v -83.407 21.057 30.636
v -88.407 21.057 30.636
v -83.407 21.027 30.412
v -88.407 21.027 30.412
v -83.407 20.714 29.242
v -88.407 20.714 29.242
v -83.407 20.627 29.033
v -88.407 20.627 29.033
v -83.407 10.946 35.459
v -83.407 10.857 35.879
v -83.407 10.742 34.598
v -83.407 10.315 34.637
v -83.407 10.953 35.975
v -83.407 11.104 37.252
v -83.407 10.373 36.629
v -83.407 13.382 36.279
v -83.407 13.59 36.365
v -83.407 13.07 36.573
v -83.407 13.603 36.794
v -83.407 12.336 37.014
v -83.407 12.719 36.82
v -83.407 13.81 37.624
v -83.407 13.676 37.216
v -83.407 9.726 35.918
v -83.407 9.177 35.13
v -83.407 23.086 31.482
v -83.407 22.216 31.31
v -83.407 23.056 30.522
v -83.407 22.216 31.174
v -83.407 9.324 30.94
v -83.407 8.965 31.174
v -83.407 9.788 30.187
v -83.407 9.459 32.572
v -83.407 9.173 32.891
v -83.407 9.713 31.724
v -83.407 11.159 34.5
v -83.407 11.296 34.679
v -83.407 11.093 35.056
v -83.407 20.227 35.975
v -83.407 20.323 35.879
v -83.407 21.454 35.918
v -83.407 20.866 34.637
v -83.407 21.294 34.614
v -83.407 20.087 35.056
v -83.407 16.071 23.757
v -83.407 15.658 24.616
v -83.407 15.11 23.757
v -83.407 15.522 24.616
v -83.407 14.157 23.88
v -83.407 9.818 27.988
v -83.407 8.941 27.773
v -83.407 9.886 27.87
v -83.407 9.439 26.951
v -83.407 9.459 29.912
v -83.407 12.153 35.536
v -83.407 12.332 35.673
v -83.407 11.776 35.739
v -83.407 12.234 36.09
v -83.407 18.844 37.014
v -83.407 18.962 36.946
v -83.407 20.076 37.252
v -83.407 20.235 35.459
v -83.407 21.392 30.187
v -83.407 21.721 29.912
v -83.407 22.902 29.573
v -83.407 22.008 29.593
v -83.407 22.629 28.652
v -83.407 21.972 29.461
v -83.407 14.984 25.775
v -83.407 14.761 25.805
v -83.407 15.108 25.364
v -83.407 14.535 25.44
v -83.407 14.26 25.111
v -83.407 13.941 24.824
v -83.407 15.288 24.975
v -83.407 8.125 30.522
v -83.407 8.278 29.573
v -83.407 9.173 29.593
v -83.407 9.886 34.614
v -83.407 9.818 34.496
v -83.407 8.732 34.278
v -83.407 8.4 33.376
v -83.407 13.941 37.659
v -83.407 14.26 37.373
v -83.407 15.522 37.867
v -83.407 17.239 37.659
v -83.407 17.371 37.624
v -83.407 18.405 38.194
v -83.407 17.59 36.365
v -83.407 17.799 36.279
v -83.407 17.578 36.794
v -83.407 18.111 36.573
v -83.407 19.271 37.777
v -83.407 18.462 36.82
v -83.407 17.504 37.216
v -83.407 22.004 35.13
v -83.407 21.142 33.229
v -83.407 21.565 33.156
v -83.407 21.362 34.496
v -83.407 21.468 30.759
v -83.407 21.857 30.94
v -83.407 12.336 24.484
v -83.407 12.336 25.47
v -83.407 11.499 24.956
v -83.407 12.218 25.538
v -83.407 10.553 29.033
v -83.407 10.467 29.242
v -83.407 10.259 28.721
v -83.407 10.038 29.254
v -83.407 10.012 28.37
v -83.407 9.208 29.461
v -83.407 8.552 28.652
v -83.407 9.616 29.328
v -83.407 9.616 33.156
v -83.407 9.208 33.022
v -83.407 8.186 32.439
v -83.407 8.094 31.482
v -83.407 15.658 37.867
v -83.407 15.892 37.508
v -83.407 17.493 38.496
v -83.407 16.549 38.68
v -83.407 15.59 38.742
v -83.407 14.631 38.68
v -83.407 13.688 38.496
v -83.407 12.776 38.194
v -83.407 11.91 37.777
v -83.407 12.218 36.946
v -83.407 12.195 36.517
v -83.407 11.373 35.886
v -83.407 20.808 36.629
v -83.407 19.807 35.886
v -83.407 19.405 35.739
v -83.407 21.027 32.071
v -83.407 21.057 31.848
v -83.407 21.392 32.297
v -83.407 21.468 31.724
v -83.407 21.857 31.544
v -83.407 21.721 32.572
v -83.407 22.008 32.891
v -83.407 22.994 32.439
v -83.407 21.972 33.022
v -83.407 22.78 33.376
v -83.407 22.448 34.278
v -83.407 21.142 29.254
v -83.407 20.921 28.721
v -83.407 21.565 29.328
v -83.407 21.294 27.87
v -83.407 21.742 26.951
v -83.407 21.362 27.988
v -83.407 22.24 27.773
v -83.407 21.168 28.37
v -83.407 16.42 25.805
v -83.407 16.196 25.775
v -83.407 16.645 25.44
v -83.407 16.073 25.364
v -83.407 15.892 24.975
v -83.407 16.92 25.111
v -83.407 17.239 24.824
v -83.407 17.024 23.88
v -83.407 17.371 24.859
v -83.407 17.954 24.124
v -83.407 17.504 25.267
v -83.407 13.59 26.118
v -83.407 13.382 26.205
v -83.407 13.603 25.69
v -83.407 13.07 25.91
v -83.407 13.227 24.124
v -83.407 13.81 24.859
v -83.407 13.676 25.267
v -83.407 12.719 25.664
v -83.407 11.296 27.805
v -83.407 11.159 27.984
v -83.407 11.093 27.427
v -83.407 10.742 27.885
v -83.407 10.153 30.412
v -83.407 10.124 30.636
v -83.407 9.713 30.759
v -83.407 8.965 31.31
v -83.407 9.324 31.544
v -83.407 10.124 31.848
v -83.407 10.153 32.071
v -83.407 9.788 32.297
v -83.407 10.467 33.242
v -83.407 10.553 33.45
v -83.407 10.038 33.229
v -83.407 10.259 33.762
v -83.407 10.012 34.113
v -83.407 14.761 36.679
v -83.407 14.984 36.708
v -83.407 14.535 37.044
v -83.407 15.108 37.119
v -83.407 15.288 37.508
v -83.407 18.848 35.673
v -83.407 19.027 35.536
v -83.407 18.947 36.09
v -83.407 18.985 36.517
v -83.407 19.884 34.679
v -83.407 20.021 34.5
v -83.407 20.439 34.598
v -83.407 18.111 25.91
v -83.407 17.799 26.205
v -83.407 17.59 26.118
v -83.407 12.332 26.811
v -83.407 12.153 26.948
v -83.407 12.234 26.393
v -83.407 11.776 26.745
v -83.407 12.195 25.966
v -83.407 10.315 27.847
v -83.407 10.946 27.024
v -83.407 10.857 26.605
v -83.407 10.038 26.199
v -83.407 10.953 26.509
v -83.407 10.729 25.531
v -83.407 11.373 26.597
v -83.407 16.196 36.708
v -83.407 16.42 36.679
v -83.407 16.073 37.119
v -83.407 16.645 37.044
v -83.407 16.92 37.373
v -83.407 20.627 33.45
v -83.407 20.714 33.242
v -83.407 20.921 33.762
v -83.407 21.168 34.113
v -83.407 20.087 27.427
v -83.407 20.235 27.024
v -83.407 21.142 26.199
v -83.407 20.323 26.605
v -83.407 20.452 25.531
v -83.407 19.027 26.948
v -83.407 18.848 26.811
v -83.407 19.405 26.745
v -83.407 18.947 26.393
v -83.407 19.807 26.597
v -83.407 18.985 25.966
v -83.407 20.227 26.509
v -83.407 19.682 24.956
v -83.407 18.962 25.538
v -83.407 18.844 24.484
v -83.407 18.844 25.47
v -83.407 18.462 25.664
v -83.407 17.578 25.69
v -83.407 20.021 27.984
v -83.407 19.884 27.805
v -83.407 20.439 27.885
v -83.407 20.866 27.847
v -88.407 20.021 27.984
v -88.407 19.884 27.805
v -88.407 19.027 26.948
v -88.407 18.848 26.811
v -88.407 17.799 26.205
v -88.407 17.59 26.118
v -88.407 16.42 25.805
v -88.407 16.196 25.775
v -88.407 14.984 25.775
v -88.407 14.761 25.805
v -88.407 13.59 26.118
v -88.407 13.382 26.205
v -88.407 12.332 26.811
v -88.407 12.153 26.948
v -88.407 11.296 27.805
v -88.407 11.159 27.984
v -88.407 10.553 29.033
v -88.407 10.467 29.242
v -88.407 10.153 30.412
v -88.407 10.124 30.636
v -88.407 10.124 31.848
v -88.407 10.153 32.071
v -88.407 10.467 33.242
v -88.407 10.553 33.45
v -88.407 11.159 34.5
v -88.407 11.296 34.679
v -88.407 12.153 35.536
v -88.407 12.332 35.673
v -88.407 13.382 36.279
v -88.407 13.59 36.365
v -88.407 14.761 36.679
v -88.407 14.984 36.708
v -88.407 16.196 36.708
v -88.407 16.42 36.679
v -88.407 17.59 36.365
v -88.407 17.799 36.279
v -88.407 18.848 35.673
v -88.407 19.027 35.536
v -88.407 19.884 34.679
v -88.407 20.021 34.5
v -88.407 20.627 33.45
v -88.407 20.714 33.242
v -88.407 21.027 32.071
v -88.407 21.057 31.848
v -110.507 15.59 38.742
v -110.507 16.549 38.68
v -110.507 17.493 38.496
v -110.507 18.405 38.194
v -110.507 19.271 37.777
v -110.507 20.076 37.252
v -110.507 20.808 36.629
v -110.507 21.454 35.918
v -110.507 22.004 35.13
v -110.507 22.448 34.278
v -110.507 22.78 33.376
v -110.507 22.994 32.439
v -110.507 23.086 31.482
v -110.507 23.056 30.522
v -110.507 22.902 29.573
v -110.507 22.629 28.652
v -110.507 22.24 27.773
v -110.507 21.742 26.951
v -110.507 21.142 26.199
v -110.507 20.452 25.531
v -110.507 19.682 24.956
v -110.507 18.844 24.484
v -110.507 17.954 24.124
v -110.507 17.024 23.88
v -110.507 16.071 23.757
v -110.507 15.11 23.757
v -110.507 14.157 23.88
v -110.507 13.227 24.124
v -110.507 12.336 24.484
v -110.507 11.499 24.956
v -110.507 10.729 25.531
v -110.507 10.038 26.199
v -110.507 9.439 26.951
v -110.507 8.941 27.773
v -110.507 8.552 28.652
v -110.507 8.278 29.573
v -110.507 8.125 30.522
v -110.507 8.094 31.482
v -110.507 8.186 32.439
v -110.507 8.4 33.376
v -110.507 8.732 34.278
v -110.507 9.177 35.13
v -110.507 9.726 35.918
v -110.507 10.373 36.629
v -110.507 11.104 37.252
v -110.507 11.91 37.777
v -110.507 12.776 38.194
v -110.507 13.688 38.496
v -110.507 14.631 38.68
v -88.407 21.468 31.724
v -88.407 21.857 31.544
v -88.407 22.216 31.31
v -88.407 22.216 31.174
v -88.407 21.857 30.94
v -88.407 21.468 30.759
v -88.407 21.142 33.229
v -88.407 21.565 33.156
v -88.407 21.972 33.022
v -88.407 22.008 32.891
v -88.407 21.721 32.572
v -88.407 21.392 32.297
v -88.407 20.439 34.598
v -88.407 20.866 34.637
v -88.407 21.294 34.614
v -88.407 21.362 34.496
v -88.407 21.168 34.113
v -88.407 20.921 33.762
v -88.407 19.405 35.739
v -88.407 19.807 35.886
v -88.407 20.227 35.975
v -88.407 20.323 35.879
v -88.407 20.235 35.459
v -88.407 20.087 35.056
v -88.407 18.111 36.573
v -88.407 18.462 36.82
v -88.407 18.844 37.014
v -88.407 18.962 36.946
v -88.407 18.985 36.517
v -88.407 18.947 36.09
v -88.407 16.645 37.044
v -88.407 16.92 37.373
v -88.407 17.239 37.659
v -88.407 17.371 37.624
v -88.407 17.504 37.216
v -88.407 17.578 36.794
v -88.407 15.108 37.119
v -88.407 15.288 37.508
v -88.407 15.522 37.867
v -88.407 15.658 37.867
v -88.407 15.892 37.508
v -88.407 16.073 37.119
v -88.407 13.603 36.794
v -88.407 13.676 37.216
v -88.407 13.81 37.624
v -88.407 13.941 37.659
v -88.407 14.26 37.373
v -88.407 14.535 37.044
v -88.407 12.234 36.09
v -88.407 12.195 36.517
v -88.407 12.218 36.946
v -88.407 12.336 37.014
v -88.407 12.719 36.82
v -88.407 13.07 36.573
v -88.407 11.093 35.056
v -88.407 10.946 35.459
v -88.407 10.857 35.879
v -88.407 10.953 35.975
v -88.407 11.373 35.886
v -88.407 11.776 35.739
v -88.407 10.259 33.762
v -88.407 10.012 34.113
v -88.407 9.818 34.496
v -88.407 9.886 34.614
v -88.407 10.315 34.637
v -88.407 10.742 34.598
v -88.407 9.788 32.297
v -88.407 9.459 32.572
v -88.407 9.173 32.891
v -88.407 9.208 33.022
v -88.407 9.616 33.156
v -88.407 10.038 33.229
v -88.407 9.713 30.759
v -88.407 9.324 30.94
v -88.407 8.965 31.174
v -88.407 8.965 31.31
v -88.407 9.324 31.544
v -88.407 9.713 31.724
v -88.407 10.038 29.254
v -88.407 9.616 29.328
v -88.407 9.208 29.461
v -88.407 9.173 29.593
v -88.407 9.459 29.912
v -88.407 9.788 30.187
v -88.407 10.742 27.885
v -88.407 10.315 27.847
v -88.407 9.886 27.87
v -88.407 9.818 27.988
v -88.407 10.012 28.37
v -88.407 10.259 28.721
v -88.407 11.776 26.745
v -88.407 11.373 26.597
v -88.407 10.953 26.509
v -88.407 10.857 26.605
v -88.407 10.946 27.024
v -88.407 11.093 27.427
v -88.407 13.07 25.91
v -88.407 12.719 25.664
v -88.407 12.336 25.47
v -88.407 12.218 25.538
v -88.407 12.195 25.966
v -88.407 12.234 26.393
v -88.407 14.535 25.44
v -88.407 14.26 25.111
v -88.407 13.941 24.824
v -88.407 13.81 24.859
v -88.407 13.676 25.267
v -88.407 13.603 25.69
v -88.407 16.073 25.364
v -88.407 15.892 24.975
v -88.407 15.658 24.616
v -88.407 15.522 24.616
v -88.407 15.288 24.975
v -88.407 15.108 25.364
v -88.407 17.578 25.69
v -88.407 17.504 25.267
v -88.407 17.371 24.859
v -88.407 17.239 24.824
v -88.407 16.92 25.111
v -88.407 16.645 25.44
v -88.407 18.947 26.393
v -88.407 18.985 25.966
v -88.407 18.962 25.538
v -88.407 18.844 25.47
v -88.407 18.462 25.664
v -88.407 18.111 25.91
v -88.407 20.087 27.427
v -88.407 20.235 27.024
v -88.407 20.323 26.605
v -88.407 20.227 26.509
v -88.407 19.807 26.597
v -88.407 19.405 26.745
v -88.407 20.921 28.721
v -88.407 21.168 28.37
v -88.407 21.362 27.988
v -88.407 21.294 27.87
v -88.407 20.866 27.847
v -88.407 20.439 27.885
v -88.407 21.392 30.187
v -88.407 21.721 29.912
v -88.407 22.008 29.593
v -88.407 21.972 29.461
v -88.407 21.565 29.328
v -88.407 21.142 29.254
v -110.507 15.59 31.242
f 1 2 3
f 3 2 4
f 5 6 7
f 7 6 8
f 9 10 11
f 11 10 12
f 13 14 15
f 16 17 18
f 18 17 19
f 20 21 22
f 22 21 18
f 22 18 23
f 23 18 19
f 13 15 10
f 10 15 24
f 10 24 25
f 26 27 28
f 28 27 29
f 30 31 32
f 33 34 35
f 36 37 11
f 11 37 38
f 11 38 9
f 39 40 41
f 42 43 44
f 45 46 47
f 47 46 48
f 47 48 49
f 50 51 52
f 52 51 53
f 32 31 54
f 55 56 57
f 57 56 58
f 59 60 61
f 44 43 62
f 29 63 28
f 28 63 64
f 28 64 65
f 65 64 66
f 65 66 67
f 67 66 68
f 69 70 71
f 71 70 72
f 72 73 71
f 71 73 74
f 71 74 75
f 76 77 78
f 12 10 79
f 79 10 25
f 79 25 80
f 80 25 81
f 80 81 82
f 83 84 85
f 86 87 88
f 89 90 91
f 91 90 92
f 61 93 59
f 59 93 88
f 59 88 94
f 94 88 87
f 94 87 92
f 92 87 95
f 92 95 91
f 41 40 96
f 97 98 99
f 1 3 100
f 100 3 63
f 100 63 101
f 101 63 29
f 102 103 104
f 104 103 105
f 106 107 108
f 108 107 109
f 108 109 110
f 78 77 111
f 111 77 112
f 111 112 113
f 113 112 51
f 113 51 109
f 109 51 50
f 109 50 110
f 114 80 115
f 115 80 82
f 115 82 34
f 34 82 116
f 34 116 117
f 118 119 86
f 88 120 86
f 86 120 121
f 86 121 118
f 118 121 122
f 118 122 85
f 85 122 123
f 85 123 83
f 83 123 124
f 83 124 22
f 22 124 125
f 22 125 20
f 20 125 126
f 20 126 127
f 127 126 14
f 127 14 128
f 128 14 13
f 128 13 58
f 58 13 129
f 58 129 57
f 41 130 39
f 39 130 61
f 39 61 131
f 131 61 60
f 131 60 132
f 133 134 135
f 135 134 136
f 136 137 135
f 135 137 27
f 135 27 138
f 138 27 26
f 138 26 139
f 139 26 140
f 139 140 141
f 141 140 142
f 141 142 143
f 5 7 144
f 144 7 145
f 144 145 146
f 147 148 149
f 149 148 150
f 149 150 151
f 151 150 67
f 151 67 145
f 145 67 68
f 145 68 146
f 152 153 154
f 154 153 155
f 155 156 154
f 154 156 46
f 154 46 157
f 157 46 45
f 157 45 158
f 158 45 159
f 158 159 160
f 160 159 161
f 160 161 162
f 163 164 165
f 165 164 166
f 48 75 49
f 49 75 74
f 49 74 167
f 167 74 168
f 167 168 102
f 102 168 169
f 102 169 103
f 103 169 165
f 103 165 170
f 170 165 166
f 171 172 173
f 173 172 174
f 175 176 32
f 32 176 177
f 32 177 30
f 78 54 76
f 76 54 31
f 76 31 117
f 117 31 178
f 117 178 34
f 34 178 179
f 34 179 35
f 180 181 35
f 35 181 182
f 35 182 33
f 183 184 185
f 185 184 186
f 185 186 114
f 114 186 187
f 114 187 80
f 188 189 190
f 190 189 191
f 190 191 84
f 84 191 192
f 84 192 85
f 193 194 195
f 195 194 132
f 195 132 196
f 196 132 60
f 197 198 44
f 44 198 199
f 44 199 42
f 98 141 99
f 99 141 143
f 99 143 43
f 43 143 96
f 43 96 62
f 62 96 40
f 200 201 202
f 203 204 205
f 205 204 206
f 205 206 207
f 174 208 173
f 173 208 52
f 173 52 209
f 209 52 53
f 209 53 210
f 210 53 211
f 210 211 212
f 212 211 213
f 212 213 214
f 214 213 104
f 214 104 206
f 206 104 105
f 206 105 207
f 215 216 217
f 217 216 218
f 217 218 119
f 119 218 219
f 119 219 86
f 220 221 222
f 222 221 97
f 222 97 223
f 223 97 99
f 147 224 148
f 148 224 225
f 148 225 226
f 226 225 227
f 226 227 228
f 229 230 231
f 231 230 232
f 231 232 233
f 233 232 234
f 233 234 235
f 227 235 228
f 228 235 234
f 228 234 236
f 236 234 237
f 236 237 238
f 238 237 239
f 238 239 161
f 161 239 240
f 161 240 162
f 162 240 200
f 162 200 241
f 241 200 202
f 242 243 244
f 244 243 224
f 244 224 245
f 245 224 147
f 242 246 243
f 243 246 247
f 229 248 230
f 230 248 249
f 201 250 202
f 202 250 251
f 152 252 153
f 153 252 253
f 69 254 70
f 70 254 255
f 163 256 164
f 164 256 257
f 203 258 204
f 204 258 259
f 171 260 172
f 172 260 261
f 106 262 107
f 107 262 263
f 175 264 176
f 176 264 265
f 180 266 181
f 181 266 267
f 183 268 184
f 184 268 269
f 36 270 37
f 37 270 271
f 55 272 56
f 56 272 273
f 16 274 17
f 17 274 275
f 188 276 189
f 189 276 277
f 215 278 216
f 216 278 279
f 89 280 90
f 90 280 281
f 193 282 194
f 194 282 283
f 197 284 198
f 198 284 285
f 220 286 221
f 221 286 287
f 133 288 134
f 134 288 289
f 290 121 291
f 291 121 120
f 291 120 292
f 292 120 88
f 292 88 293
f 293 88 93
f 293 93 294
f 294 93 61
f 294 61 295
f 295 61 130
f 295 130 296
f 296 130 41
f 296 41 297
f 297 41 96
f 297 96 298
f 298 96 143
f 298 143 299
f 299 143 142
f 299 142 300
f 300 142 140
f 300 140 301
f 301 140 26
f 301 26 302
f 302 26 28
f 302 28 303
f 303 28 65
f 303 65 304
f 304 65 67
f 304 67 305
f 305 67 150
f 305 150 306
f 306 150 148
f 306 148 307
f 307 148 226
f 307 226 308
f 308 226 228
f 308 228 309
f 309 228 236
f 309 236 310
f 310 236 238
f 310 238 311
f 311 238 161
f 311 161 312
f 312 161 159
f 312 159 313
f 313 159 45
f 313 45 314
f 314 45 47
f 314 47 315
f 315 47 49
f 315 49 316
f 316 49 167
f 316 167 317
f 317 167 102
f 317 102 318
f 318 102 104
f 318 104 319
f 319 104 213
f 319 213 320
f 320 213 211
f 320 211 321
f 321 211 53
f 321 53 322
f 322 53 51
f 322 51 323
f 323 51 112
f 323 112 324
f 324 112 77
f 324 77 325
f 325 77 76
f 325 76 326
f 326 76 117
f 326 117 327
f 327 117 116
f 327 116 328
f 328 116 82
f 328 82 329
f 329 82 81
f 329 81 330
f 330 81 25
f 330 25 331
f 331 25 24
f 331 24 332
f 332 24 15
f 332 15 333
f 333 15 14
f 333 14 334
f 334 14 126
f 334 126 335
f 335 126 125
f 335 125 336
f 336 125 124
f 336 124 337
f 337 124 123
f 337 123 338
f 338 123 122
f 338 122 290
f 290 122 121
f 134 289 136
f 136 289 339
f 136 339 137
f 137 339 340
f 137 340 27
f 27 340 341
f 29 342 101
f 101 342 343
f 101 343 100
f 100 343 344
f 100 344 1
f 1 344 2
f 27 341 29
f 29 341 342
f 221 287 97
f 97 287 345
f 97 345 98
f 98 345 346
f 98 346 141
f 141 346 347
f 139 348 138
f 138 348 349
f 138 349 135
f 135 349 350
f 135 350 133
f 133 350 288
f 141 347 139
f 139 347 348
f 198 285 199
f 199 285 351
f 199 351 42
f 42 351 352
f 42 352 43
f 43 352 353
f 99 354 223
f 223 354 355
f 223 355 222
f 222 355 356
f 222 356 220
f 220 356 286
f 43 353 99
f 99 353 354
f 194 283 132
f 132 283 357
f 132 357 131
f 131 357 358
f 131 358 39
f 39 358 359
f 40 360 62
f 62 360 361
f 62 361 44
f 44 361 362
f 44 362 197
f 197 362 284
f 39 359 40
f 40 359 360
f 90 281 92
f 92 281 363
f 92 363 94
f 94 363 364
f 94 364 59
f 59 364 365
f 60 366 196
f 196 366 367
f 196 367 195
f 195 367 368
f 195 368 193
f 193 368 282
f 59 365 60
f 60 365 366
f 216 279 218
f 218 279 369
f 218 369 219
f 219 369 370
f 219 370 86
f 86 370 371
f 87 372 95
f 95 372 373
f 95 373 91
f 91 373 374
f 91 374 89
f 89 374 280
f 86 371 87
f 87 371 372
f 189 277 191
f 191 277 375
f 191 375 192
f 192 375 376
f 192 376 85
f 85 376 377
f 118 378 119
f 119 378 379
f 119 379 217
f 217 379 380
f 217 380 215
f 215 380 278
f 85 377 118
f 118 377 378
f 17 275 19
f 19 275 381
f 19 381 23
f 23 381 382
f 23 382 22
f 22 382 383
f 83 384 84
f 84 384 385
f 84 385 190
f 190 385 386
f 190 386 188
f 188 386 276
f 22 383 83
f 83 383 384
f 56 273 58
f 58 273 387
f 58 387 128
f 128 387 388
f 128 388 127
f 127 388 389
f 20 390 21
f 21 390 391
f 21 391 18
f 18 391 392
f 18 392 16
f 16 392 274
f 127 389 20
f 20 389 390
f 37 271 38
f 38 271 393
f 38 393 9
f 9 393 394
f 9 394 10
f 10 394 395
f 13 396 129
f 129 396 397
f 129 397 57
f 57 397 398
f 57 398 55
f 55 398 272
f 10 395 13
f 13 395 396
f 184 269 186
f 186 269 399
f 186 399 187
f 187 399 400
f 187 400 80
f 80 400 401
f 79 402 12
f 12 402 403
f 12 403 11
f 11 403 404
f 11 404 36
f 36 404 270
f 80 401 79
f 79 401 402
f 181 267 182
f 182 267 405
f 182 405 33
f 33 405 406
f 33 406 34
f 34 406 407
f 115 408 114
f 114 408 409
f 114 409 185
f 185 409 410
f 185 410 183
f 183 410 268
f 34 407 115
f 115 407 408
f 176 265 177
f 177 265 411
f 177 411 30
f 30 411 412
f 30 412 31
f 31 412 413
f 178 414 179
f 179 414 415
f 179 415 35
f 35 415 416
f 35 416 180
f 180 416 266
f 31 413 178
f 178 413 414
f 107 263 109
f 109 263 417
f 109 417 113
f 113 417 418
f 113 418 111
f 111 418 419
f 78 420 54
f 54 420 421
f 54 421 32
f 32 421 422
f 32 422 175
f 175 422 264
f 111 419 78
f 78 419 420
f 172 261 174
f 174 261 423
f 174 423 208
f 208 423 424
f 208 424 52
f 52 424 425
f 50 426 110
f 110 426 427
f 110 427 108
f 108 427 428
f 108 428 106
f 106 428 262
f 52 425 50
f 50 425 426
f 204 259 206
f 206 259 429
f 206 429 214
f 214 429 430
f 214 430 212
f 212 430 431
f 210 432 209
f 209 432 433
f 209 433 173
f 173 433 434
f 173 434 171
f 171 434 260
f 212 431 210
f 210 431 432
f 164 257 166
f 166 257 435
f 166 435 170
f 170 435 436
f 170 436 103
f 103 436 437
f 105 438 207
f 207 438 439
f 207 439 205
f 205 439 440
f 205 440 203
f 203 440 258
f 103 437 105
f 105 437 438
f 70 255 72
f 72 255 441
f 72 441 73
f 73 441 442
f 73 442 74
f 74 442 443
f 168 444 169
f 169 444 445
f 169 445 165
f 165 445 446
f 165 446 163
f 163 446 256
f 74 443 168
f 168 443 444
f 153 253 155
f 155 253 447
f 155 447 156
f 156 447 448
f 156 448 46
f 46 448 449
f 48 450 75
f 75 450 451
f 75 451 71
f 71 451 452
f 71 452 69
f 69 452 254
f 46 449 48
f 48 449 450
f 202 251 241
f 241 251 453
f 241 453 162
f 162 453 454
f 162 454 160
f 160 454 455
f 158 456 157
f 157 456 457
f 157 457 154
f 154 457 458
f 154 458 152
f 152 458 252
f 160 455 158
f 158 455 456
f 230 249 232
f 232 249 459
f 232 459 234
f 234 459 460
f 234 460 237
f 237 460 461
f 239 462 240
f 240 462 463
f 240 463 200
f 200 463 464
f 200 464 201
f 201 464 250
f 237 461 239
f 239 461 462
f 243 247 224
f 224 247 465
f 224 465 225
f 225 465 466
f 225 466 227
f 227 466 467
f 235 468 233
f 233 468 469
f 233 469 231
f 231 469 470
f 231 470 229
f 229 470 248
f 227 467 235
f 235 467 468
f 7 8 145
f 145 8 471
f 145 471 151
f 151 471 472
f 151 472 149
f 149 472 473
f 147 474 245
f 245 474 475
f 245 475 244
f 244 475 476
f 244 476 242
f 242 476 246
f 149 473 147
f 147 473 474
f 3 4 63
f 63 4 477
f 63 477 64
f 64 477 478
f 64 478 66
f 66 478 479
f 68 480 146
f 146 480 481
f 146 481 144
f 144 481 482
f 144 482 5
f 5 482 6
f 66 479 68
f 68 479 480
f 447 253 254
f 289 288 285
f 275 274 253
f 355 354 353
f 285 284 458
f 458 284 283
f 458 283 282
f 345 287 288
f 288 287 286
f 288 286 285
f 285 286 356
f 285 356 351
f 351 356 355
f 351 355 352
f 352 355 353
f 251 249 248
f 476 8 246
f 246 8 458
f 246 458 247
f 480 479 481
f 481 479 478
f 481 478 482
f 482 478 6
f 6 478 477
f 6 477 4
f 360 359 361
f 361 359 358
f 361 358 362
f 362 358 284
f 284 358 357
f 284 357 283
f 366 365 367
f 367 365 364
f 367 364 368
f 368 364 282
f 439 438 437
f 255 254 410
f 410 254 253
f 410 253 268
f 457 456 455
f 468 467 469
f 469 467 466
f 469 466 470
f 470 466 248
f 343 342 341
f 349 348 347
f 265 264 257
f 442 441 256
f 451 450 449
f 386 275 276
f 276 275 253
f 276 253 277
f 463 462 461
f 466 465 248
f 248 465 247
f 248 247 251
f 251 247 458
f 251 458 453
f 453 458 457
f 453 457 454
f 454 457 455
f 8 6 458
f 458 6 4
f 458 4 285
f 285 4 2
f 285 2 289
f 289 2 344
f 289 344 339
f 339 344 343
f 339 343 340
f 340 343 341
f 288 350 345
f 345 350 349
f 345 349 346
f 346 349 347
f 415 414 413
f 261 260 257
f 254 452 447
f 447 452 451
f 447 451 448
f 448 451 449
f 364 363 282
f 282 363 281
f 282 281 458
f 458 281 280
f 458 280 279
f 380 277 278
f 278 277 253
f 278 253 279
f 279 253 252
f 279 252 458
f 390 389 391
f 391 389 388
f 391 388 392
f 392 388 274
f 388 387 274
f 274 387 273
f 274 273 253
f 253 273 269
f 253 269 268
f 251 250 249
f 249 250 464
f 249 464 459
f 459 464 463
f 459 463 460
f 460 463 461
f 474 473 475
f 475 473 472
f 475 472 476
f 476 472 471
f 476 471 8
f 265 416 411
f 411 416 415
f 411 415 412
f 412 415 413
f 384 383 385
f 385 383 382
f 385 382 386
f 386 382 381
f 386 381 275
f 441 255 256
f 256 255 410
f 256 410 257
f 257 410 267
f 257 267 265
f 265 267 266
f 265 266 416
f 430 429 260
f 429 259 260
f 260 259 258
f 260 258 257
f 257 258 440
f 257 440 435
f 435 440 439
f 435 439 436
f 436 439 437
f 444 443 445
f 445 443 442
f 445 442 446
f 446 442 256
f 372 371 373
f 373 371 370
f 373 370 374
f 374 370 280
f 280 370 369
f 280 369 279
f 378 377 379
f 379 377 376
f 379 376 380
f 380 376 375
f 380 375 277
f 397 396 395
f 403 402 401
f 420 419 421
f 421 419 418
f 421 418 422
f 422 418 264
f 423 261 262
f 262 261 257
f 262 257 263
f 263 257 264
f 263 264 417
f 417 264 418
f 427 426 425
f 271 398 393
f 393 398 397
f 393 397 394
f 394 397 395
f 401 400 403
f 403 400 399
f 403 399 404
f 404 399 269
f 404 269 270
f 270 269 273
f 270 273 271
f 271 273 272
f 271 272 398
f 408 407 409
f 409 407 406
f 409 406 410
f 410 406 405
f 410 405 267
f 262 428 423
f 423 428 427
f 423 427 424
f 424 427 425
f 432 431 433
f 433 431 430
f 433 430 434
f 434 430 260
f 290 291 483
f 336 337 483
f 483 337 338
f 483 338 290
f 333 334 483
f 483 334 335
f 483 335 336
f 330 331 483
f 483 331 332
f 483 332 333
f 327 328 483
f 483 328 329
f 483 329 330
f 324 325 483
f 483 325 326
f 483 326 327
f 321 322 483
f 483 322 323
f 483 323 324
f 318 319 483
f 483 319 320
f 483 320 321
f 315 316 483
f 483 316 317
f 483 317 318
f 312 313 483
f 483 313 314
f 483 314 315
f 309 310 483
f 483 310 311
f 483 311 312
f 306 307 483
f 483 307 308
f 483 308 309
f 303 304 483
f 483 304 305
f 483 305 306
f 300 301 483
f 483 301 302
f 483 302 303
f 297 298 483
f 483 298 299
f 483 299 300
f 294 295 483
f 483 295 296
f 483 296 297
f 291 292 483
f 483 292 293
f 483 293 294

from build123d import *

# Parameters (mm, degrees)
INTERNAL_START                  = -88.407440494
INTERNAL_SPUR_GEAR_AM_OUTLINE_R = 7.5
INTERNAL_SPUR_GEAR_AM_DEPTH     = 5
BOSS_EXTRUDE2_START             = 22.1
SKETCH3_R                       = 7.5
BOSS_EXTRUDE2_DEPTH             = 22.1


# Read off the part's stored shape, not the designer's step: internal spur gear_am
with BuildPart() as part:
    # internal spur gear_am outline → internal spur gear_am (new body)
    with BuildSketch(Plane.YZ.offset(INTERNAL_START)):
        with Locations((15.590226083, 31.241752714)):
            Circle(INTERNAL_SPUR_GEAR_AM_OUTLINE_R)
        with BuildLine():
            ThreePointArc((22.215876043, 31.173645397), (21.665278496, 30.84231879), (21.056750139, 30.635852768))
            ThreePointArc((21.056750139, 30.635852768), (21.043172821, 30.523858657), (21.027301295, 30.412166585))
            ThreePointArc((21.027301295, 30.412166585), (21.561657212, 30.055236993), (22.007739967, 29.592694935))
            ThreePointArc((22.007739967, 29.592694935), (21.990450608, 29.526817722), (21.972485025, 29.461121702))
            ThreePointArc((21.972485025, 29.461121702), (21.354894998, 29.283589907), (20.713664403, 29.241657772))
            ThreePointArc((20.713664403, 29.241657772), (20.671563512, 29.136993836), (20.62732476, 29.033215432))
            ThreePointArc((20.62732476, 29.033215432), (21.051092764, 28.550146434), (21.362260924, 27.987910402))
            ThreePointArc((21.362260924, 27.987910402), (21.328510409, 27.928752714), (21.294153607, 27.869945067))
            ThreePointArc((21.294153607, 27.869945067), (20.65165884, 27.858306583), (20.021424813, 27.98376594))
            ThreePointArc((20.021424813, 27.98376594), (19.953669455, 27.893564855), (19.884078274, 27.804772446))
            ThreePointArc((19.884078274, 27.804772446), (20.168379277, 27.228484394), (20.323427246, 26.604869844))
            ThreePointArc((20.323427246, 26.604869844), (20.275515615, 26.556463182), (20.227108954, 26.508551552))
            ThreePointArc((20.227108954, 26.508551552), (19.603494404, 26.663599521), (19.027206352, 26.947900524))
            ThreePointArc((19.027206352, 26.947900524), (18.938413943, 26.878309343), (18.848212857, 26.810553985))
            ThreePointArc((18.848212857, 26.810553985), (18.973672215, 26.180319958), (18.96203373, 25.537825191))
            ThreePointArc((18.96203373, 25.537825191), (18.903226083, 25.503468389), (18.844068396, 25.469717874))
            ThreePointArc((18.844068396, 25.469717874), (18.281832364, 25.780886034), (17.798763365, 26.204654038))
            ThreePointArc((17.798763365, 26.204654038), (17.694984961, 26.160415286), (17.590321026, 26.118314394))
            ThreePointArc((17.590321026, 26.118314394), (17.548388891, 25.4770838), (17.370857096, 24.859493773))
            ThreePointArc((17.370857096, 24.859493773), (17.305161076, 24.841528189), (17.239283862, 24.824238831))
            ThreePointArc((17.239283862, 24.824238831), (16.776741804, 25.270321586), (16.419812213, 25.804677503))
            ThreePointArc((16.419812213, 25.804677503), (16.308120141, 25.788805977), (16.19612603, 25.775228658))
            ThreePointArc((16.19612603, 25.775228658), (15.989660007, 25.166700302), (15.658333401, 24.616102754))
            ThreePointArc((15.658333401, 24.616102754), (15.590226083, 24.615752714), (15.522118766, 24.616102754))
            ThreePointArc((15.522118766, 24.616102754), (15.190792159, 25.166700301), (14.984326137, 25.775228658))
            ThreePointArc((14.984326137, 25.775228658), (14.872332026, 25.788805977), (14.760639954, 25.804677503))
            ThreePointArc((14.760639954, 25.804677503), (14.403710362, 25.270321586), (13.941168304, 24.824238831))
            ThreePointArc((13.941168304, 24.824238831), (13.87529109, 24.841528189), (13.809595071, 24.859493773))
            ThreePointArc((13.809595071, 24.859493773), (13.632063276, 25.4770838), (13.59013114, 26.118314394))
            ThreePointArc((13.59013114, 26.118314394), (13.485467205, 26.160415286), (13.381688801, 26.204654038))
            ThreePointArc((13.381688801, 26.204654038), (12.898619802, 25.780886034), (12.33638377, 25.469717874))
            ThreePointArc((12.33638377, 25.469717874), (12.277226083, 25.503468389), (12.218418436, 25.537825191))
            ThreePointArc((12.218418436, 25.537825191), (12.206779952, 26.180319958), (12.332239309, 26.810553985))
            ThreePointArc((12.332239309, 26.810553985), (12.242038224, 26.878309343), (12.153245815, 26.947900524))
            ThreePointArc((12.153245815, 26.947900524), (11.576957763, 26.663599521), (10.953343213, 26.508551552))
            ThreePointArc((10.953343213, 26.508551552), (10.904936551, 26.556463182), (10.857024921, 26.604869844))
            ThreePointArc((10.857024921, 26.604869844), (11.01207289, 27.228484394), (11.296373893, 27.804772446))
            ThreePointArc((11.296373893, 27.804772446), (11.226782712, 27.893564855), (11.159027354, 27.98376594))
            ThreePointArc((11.159027354, 27.98376594), (10.528793327, 27.858306583), (9.88629856, 27.869945067))
            ThreePointArc((9.88629856, 27.869945067), (9.851941758, 27.928752714), (9.818191243, 27.987910402))
            ThreePointArc((9.818191243, 27.987910402), (10.129359403, 28.550146434), (10.553127407, 29.033215432))
            ThreePointArc((10.553127407, 29.033215432), (10.508888654, 29.136993836), (10.466787763, 29.241657772))
            ThreePointArc((10.466787763, 29.241657772), (9.825557169, 29.283589907), (9.207967142, 29.461121702))
            ThreePointArc((9.207967142, 29.461121702), (9.190001558, 29.526817721), (9.1727122, 29.592694935))
            ThreePointArc((9.1727122, 29.592694935), (9.618794955, 30.055236993), (10.153150872, 30.412166585))
            ThreePointArc((10.153150872, 30.412166585), (10.137279346, 30.523858657), (10.123702027, 30.635852768))
            ThreePointArc((10.123702027, 30.635852768), (9.51517367, 30.84231879), (8.964576123, 31.173645397))
            ThreePointArc((8.964576123, 31.173645397), (8.964226083, 31.241752715), (8.964576123, 31.309860032))
            ThreePointArc((8.964576123, 31.309860032), (9.51517367, 31.641186639), (10.123702027, 31.847652661))
            ThreePointArc((10.123702027, 31.847652661), (10.137279346, 31.959646772), (10.153150872, 32.071338844))
            ThreePointArc((10.153150872, 32.071338844), (9.618794955, 32.428268436), (9.1727122, 32.890810493))
            ThreePointArc((9.1727122, 32.890810493), (9.190001558, 32.956687707), (9.207967142, 33.022383727))
            ThreePointArc((9.207967142, 33.022383727), (9.825557169, 33.199915522), (10.466787763, 33.241847657))
            ThreePointArc((10.466787763, 33.241847657), (10.508888654, 33.346511592), (10.553127407, 33.450289996))
            ThreePointArc((10.553127407, 33.450289996), (10.129359403, 33.933358995), (9.818191243, 34.495595027))
            ThreePointArc((9.818191243, 34.495595027), (9.851941758, 34.554752714), (9.88629856, 34.613560362))
            ThreePointArc((9.88629856, 34.613560362), (10.528793327, 34.625198846), (11.159027354, 34.499739488))
            ThreePointArc((11.159027354, 34.499739488), (11.226782712, 34.589940574), (11.296373893, 34.678732983))
            ThreePointArc((11.296373893, 34.678732983), (11.01207289, 35.255021035), (10.857024921, 35.878635585))
            ThreePointArc((10.857024921, 35.878635585), (10.904936551, 35.927042247), (10.953343213, 35.974953877))
            ThreePointArc((10.953343213, 35.974953877), (11.576957763, 35.819905908), (12.153245815, 35.535604905))
            ThreePointArc((12.153245815, 35.535604905), (12.242038224, 35.605196086), (12.332239309, 35.672951444))
            ThreePointArc((12.332239309, 35.672951444), (12.206779952, 36.303185471), (12.218418436, 36.945680238))
            ThreePointArc((12.218418436, 36.945680238), (12.277226083, 36.98003704), (12.33638377, 37.013787555))
            ThreePointArc((12.33638377, 37.013787555), (12.898619802, 36.702619395), (13.381688801, 36.278851391))
            ThreePointArc((13.381688801, 36.278851391), (13.485467205, 36.323090143), (13.59013114, 36.365191035))
            ThreePointArc((13.59013114, 36.365191035), (13.632063276, 37.006421629), (13.809595071, 37.624011656))
            ThreePointArc((13.809595071, 37.624011656), (13.875291091, 37.641977239), (13.941168304, 37.659266598))
            ThreePointArc((13.941168304, 37.659266598), (14.403710362, 37.213183843), (14.760639954, 36.678827926))
            ThreePointArc((14.760639954, 36.678827926), (14.872332026, 36.694699452), (14.984326137, 36.70827677))
            ThreePointArc((14.984326137, 36.70827677), (15.190792159, 37.316805127), (15.522118766, 37.867402675))
            ThreePointArc((15.522118766, 37.867402675), (15.590226084, 37.867752714), (15.658333401, 37.867402675))
            ThreePointArc((15.658333401, 37.867402675), (15.989660007, 37.316805127), (16.19612603, 36.70827677))
            ThreePointArc((16.19612603, 36.70827677), (16.308120141, 36.694699452), (16.419812213, 36.678827926))
            ThreePointArc((16.419812213, 36.678827926), (16.776741804, 37.213183843), (17.239283862, 37.659266598))
            ThreePointArc((17.239283862, 37.659266598), (17.305161076, 37.641977239), (17.370857096, 37.624011656))
            ThreePointArc((17.370857096, 37.624011656), (17.548388891, 37.006421629), (17.590321026, 36.365191035))
            ThreePointArc((17.590321026, 36.365191035), (17.694984961, 36.323090143), (17.798763365, 36.278851391))
            ThreePointArc((17.798763365, 36.278851391), (18.281832364, 36.702619395), (18.844068396, 37.013787555))
            ThreePointArc((18.844068396, 37.013787555), (18.903226083, 36.98003704), (18.96203373, 36.945680238))
            ThreePointArc((18.96203373, 36.945680238), (18.973672215, 36.303185471), (18.848212857, 35.672951444))
            ThreePointArc((18.848212857, 35.672951444), (18.938413943, 35.605196086), (19.027206352, 35.535604905))
            ThreePointArc((19.027206352, 35.535604905), (19.603494404, 35.819905908), (20.227108954, 35.974953877))
            ThreePointArc((20.227108954, 35.974953877), (20.275515616, 35.927042247), (20.323427246, 35.878635585))
            ThreePointArc((20.323427246, 35.878635585), (20.168379277, 35.255021035), (19.884078274, 34.678732983))
            ThreePointArc((19.884078274, 34.678732983), (19.953669455, 34.589940574), (20.021424813, 34.499739488))
            ThreePointArc((20.021424813, 34.499739488), (20.65165884, 34.625198846), (21.294153607, 34.613560362))
            ThreePointArc((21.294153607, 34.613560362), (21.328510409, 34.554752714), (21.362260924, 34.495595027))
            ThreePointArc((21.362260924, 34.495595027), (21.051092764, 33.933358995), (20.62732476, 33.450289996))
            ThreePointArc((20.62732476, 33.450289996), (20.671563512, 33.346511592), (20.713664403, 33.241847657))
            ThreePointArc((20.713664403, 33.241847657), (21.354894998, 33.199915522), (21.972485025, 33.022383727))
            ThreePointArc((21.972485025, 33.022383727), (21.990450608, 32.956687707), (22.007739967, 32.890810493))
            ThreePointArc((22.007739967, 32.890810493), (21.561657212, 32.428268436), (21.027301295, 32.071338844))
            ThreePointArc((21.027301295, 32.071338844), (21.043172821, 31.959646772), (21.056750139, 31.847652661))
            ThreePointArc((21.056750139, 31.847652661), (21.665278496, 31.641186639), (22.215876043, 31.309860032))
            ThreePointArc((22.215876043, 31.309860032), (22.216226083, 31.241752714), (22.215876043, 31.173645397))
        make_face(mode=Mode.SUBTRACT)
    extrude(amount=INTERNAL_SPUR_GEAR_AM_DEPTH)

    # Sketch3 → Boss-Extrude2 (add)
    with BuildSketch(Plane.ZY.offset(88.407440494).offset(BOSS_EXTRUDE2_START)):
        with Locations((31.241752714, 15.590226083)):
            Circle(SKETCH3_R)
    extrude(amount=-BOSS_EXTRUDE2_DEPTH)


solid = part.part
